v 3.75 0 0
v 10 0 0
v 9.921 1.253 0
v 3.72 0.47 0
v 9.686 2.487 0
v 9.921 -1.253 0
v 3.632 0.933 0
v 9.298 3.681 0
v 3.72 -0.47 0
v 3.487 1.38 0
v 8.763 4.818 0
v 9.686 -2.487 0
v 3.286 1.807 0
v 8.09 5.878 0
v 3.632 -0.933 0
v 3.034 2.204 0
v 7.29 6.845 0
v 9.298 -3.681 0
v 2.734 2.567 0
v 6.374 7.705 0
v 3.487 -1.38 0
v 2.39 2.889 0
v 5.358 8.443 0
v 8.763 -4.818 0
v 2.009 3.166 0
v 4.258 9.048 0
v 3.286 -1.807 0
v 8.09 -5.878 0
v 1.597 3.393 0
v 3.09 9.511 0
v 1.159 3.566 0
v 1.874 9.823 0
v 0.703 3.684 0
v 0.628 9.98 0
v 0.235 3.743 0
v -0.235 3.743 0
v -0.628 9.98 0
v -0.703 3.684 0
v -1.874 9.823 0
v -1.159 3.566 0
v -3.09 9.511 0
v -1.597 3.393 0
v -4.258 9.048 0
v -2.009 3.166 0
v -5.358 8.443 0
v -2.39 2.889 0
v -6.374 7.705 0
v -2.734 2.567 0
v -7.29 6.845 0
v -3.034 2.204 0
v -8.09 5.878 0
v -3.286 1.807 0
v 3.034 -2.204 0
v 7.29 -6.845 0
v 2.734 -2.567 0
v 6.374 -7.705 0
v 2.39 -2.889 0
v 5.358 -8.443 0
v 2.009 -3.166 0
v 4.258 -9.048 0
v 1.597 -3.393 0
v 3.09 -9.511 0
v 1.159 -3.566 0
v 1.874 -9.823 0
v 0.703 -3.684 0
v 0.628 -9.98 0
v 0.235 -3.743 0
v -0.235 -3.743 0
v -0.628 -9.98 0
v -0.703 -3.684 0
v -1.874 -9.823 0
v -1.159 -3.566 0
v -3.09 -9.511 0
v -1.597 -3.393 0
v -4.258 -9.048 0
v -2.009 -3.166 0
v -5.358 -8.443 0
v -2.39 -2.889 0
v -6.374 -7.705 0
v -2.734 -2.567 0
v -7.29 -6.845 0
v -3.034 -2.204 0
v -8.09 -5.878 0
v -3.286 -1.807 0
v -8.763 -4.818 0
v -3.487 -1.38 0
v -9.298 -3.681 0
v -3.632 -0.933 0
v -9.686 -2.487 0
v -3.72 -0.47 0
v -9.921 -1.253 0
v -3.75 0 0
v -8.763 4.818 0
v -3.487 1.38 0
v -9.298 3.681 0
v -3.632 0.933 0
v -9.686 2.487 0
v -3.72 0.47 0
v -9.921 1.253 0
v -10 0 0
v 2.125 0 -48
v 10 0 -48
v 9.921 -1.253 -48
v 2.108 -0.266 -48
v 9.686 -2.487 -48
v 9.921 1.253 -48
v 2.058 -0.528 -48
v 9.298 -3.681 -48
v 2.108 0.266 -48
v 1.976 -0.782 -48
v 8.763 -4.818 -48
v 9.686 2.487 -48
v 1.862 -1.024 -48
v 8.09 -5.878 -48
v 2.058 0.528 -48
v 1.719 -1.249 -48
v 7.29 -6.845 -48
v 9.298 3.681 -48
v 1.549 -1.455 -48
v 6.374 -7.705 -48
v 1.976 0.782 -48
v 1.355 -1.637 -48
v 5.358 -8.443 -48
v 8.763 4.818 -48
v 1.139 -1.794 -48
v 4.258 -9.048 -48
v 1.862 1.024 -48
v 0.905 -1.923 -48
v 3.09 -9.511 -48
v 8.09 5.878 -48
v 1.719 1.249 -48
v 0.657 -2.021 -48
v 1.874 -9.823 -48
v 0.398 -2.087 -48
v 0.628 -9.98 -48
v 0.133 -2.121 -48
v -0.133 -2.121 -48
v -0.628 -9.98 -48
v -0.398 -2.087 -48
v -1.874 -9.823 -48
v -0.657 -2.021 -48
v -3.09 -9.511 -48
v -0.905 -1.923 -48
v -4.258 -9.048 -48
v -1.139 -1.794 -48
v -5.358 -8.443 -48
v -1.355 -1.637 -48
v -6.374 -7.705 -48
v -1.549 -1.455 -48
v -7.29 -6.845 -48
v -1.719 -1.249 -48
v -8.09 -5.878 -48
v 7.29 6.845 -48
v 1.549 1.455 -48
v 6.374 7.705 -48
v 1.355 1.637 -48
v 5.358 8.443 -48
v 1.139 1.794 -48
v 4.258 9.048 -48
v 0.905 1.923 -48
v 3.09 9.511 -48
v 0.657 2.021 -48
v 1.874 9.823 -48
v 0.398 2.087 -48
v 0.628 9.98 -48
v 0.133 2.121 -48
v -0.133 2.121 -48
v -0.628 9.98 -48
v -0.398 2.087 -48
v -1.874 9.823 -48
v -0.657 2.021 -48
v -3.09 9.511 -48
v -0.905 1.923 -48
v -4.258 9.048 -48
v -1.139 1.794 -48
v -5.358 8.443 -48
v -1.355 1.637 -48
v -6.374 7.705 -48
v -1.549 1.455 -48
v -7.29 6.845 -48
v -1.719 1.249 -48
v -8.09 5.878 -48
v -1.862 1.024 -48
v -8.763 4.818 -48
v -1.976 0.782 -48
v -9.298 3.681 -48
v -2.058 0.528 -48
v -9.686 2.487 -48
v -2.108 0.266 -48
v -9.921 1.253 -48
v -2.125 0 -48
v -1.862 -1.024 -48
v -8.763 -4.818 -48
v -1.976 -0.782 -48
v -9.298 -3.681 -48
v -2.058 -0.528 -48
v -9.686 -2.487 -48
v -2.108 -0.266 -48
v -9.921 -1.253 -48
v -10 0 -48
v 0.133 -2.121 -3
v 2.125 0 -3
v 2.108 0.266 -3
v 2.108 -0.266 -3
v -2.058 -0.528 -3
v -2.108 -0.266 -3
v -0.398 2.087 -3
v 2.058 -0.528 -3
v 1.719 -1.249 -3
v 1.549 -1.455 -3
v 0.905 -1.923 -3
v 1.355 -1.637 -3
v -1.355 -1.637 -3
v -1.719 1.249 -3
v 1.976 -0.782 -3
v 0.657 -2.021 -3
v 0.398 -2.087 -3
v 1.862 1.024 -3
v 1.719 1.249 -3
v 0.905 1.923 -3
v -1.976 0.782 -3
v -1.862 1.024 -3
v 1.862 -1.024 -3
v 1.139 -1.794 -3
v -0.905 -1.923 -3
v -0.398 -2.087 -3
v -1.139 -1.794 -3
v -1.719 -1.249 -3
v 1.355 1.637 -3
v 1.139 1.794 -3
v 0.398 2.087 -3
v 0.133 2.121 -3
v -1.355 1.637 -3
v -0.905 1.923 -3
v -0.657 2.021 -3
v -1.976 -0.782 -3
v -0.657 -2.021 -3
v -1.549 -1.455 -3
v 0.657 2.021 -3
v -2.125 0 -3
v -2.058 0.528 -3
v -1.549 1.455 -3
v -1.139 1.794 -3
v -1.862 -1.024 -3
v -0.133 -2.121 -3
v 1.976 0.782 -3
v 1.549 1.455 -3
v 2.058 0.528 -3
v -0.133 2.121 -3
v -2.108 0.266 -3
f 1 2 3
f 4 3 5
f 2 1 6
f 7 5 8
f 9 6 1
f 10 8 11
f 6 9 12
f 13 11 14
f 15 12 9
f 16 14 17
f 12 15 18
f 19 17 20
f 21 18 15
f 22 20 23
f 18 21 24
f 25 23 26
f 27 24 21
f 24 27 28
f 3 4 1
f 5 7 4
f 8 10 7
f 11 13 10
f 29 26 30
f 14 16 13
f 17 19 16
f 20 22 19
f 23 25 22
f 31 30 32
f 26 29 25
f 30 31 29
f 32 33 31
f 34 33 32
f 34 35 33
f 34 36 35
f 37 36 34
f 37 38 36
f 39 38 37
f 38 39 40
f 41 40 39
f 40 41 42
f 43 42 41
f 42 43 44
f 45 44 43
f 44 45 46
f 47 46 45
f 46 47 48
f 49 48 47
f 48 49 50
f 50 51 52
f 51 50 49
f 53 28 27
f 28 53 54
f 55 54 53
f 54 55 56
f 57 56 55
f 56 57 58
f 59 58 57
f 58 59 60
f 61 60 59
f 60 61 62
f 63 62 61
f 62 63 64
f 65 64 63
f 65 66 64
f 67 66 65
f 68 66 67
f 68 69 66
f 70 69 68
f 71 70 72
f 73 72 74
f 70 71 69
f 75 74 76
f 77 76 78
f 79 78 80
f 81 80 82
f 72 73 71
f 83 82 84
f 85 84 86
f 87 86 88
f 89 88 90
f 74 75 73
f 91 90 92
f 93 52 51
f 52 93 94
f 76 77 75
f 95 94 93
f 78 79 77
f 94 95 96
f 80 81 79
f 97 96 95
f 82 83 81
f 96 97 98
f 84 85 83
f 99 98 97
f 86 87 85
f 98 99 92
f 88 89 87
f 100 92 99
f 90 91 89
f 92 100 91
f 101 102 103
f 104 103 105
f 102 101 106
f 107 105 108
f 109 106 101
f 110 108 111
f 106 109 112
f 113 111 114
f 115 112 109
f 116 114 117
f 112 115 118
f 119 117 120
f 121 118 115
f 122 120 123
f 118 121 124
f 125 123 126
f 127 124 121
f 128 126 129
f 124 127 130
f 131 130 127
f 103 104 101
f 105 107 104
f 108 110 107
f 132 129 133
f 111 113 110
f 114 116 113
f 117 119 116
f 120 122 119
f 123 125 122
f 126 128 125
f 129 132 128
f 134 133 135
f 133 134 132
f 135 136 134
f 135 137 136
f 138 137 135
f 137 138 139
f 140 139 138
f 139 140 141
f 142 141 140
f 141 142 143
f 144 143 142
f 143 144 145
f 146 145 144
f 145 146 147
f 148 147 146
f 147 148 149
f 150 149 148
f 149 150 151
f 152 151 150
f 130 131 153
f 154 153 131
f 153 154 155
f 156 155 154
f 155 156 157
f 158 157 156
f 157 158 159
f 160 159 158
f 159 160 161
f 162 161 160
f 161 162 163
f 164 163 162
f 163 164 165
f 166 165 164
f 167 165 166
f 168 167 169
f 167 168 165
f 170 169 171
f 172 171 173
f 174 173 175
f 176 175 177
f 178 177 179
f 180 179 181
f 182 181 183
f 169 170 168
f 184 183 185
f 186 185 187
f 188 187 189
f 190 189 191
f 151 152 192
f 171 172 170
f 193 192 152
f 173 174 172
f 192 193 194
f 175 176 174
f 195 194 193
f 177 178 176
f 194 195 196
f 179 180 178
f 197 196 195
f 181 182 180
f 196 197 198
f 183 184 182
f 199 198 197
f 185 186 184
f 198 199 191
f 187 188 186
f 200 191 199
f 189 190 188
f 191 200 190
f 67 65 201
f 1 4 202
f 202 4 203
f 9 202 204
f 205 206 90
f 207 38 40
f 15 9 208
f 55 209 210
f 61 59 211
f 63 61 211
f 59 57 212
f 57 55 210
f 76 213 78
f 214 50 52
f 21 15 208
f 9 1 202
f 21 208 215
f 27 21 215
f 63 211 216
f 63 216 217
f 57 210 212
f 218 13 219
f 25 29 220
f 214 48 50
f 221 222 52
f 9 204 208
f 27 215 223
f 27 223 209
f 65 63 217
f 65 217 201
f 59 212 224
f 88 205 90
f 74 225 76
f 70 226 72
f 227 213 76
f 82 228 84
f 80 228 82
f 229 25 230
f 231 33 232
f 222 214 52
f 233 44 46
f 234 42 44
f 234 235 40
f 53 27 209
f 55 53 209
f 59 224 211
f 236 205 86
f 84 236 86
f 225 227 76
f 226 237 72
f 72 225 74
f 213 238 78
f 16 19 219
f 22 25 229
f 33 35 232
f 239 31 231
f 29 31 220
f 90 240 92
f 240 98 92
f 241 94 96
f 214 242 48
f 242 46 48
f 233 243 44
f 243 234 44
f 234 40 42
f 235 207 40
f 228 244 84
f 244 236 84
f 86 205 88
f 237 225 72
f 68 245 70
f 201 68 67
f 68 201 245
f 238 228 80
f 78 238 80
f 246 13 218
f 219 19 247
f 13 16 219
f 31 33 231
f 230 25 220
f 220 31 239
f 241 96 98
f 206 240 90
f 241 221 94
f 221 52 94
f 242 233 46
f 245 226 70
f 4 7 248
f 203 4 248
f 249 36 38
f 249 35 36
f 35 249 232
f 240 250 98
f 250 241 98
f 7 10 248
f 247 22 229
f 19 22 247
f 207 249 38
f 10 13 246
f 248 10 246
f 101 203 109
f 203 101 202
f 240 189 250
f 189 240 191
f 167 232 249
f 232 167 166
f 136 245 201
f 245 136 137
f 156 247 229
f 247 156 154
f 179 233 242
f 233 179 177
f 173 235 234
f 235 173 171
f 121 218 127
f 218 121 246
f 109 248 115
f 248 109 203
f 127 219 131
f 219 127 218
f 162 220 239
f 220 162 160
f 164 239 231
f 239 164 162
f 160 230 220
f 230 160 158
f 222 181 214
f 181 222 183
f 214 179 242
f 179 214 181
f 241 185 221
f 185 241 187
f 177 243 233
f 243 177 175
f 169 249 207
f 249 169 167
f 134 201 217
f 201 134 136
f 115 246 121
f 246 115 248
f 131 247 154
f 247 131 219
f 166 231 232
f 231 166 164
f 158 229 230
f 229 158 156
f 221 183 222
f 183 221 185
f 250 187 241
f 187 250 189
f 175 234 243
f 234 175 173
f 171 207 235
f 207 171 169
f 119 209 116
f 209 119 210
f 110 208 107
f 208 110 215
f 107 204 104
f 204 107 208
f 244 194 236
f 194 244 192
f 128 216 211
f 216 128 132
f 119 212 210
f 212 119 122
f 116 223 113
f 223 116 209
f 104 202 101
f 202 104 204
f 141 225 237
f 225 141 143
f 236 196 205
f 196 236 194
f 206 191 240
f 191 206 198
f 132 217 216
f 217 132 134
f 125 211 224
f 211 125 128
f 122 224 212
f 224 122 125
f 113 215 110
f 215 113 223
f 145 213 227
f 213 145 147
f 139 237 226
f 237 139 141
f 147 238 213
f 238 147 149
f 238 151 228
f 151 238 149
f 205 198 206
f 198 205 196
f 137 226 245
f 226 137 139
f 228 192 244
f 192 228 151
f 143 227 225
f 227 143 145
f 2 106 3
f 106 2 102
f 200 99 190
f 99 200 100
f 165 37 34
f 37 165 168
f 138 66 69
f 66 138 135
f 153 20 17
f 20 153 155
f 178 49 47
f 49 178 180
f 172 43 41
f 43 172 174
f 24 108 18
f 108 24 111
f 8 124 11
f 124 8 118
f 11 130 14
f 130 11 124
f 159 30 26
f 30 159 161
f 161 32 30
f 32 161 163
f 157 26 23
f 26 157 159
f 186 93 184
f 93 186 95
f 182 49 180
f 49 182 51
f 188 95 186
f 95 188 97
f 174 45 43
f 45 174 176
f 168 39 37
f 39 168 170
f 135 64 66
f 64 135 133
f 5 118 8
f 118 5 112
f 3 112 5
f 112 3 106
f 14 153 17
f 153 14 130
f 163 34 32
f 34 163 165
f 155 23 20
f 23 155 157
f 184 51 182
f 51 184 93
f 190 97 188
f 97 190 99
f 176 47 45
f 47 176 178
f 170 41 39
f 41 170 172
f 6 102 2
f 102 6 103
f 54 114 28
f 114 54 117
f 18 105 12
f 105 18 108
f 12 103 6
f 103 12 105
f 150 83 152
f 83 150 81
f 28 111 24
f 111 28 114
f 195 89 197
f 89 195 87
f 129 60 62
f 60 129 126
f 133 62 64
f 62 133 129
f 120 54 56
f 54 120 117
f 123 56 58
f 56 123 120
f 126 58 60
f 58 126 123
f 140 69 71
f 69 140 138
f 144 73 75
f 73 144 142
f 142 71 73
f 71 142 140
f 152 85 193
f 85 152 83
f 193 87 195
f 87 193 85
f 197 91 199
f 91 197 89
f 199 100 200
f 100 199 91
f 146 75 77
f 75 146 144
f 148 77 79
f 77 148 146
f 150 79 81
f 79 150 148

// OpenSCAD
$fn = 50;


difference() {
	union() {
		translate(v = [0, 0, -48.0000000000]) {
			cylinder(h = 48, r = 10.0000000000);
		}
		cylinder(h = 0, r = 13.0000000000);
	}
	union() {
		translate(v = [0, 0, 0]) {
			rotate(a = [0, 0, 0]) {
				difference() {
					union() {
						#translate(v = [0, 0, -48.0000000000]) {
							cylinder(h = 48, r = 2.0000000000);
						}
						#translate(v = [0, 0, -3]) {
							cylinder(h = 3, r1 = 2.1250000000, r2 = 3.7500000000);
						}
						#translate(v = [0, 0, -48.0000000000]) {
							cylinder(h = 48, r = 2.1250000000);
						}
						#translate(v = [0, 0, -48.0000000000]) {
							cylinder(h = 48, r = 2.0000000000);
						}
					}
					union();
				}
			}
		}
	}
}
